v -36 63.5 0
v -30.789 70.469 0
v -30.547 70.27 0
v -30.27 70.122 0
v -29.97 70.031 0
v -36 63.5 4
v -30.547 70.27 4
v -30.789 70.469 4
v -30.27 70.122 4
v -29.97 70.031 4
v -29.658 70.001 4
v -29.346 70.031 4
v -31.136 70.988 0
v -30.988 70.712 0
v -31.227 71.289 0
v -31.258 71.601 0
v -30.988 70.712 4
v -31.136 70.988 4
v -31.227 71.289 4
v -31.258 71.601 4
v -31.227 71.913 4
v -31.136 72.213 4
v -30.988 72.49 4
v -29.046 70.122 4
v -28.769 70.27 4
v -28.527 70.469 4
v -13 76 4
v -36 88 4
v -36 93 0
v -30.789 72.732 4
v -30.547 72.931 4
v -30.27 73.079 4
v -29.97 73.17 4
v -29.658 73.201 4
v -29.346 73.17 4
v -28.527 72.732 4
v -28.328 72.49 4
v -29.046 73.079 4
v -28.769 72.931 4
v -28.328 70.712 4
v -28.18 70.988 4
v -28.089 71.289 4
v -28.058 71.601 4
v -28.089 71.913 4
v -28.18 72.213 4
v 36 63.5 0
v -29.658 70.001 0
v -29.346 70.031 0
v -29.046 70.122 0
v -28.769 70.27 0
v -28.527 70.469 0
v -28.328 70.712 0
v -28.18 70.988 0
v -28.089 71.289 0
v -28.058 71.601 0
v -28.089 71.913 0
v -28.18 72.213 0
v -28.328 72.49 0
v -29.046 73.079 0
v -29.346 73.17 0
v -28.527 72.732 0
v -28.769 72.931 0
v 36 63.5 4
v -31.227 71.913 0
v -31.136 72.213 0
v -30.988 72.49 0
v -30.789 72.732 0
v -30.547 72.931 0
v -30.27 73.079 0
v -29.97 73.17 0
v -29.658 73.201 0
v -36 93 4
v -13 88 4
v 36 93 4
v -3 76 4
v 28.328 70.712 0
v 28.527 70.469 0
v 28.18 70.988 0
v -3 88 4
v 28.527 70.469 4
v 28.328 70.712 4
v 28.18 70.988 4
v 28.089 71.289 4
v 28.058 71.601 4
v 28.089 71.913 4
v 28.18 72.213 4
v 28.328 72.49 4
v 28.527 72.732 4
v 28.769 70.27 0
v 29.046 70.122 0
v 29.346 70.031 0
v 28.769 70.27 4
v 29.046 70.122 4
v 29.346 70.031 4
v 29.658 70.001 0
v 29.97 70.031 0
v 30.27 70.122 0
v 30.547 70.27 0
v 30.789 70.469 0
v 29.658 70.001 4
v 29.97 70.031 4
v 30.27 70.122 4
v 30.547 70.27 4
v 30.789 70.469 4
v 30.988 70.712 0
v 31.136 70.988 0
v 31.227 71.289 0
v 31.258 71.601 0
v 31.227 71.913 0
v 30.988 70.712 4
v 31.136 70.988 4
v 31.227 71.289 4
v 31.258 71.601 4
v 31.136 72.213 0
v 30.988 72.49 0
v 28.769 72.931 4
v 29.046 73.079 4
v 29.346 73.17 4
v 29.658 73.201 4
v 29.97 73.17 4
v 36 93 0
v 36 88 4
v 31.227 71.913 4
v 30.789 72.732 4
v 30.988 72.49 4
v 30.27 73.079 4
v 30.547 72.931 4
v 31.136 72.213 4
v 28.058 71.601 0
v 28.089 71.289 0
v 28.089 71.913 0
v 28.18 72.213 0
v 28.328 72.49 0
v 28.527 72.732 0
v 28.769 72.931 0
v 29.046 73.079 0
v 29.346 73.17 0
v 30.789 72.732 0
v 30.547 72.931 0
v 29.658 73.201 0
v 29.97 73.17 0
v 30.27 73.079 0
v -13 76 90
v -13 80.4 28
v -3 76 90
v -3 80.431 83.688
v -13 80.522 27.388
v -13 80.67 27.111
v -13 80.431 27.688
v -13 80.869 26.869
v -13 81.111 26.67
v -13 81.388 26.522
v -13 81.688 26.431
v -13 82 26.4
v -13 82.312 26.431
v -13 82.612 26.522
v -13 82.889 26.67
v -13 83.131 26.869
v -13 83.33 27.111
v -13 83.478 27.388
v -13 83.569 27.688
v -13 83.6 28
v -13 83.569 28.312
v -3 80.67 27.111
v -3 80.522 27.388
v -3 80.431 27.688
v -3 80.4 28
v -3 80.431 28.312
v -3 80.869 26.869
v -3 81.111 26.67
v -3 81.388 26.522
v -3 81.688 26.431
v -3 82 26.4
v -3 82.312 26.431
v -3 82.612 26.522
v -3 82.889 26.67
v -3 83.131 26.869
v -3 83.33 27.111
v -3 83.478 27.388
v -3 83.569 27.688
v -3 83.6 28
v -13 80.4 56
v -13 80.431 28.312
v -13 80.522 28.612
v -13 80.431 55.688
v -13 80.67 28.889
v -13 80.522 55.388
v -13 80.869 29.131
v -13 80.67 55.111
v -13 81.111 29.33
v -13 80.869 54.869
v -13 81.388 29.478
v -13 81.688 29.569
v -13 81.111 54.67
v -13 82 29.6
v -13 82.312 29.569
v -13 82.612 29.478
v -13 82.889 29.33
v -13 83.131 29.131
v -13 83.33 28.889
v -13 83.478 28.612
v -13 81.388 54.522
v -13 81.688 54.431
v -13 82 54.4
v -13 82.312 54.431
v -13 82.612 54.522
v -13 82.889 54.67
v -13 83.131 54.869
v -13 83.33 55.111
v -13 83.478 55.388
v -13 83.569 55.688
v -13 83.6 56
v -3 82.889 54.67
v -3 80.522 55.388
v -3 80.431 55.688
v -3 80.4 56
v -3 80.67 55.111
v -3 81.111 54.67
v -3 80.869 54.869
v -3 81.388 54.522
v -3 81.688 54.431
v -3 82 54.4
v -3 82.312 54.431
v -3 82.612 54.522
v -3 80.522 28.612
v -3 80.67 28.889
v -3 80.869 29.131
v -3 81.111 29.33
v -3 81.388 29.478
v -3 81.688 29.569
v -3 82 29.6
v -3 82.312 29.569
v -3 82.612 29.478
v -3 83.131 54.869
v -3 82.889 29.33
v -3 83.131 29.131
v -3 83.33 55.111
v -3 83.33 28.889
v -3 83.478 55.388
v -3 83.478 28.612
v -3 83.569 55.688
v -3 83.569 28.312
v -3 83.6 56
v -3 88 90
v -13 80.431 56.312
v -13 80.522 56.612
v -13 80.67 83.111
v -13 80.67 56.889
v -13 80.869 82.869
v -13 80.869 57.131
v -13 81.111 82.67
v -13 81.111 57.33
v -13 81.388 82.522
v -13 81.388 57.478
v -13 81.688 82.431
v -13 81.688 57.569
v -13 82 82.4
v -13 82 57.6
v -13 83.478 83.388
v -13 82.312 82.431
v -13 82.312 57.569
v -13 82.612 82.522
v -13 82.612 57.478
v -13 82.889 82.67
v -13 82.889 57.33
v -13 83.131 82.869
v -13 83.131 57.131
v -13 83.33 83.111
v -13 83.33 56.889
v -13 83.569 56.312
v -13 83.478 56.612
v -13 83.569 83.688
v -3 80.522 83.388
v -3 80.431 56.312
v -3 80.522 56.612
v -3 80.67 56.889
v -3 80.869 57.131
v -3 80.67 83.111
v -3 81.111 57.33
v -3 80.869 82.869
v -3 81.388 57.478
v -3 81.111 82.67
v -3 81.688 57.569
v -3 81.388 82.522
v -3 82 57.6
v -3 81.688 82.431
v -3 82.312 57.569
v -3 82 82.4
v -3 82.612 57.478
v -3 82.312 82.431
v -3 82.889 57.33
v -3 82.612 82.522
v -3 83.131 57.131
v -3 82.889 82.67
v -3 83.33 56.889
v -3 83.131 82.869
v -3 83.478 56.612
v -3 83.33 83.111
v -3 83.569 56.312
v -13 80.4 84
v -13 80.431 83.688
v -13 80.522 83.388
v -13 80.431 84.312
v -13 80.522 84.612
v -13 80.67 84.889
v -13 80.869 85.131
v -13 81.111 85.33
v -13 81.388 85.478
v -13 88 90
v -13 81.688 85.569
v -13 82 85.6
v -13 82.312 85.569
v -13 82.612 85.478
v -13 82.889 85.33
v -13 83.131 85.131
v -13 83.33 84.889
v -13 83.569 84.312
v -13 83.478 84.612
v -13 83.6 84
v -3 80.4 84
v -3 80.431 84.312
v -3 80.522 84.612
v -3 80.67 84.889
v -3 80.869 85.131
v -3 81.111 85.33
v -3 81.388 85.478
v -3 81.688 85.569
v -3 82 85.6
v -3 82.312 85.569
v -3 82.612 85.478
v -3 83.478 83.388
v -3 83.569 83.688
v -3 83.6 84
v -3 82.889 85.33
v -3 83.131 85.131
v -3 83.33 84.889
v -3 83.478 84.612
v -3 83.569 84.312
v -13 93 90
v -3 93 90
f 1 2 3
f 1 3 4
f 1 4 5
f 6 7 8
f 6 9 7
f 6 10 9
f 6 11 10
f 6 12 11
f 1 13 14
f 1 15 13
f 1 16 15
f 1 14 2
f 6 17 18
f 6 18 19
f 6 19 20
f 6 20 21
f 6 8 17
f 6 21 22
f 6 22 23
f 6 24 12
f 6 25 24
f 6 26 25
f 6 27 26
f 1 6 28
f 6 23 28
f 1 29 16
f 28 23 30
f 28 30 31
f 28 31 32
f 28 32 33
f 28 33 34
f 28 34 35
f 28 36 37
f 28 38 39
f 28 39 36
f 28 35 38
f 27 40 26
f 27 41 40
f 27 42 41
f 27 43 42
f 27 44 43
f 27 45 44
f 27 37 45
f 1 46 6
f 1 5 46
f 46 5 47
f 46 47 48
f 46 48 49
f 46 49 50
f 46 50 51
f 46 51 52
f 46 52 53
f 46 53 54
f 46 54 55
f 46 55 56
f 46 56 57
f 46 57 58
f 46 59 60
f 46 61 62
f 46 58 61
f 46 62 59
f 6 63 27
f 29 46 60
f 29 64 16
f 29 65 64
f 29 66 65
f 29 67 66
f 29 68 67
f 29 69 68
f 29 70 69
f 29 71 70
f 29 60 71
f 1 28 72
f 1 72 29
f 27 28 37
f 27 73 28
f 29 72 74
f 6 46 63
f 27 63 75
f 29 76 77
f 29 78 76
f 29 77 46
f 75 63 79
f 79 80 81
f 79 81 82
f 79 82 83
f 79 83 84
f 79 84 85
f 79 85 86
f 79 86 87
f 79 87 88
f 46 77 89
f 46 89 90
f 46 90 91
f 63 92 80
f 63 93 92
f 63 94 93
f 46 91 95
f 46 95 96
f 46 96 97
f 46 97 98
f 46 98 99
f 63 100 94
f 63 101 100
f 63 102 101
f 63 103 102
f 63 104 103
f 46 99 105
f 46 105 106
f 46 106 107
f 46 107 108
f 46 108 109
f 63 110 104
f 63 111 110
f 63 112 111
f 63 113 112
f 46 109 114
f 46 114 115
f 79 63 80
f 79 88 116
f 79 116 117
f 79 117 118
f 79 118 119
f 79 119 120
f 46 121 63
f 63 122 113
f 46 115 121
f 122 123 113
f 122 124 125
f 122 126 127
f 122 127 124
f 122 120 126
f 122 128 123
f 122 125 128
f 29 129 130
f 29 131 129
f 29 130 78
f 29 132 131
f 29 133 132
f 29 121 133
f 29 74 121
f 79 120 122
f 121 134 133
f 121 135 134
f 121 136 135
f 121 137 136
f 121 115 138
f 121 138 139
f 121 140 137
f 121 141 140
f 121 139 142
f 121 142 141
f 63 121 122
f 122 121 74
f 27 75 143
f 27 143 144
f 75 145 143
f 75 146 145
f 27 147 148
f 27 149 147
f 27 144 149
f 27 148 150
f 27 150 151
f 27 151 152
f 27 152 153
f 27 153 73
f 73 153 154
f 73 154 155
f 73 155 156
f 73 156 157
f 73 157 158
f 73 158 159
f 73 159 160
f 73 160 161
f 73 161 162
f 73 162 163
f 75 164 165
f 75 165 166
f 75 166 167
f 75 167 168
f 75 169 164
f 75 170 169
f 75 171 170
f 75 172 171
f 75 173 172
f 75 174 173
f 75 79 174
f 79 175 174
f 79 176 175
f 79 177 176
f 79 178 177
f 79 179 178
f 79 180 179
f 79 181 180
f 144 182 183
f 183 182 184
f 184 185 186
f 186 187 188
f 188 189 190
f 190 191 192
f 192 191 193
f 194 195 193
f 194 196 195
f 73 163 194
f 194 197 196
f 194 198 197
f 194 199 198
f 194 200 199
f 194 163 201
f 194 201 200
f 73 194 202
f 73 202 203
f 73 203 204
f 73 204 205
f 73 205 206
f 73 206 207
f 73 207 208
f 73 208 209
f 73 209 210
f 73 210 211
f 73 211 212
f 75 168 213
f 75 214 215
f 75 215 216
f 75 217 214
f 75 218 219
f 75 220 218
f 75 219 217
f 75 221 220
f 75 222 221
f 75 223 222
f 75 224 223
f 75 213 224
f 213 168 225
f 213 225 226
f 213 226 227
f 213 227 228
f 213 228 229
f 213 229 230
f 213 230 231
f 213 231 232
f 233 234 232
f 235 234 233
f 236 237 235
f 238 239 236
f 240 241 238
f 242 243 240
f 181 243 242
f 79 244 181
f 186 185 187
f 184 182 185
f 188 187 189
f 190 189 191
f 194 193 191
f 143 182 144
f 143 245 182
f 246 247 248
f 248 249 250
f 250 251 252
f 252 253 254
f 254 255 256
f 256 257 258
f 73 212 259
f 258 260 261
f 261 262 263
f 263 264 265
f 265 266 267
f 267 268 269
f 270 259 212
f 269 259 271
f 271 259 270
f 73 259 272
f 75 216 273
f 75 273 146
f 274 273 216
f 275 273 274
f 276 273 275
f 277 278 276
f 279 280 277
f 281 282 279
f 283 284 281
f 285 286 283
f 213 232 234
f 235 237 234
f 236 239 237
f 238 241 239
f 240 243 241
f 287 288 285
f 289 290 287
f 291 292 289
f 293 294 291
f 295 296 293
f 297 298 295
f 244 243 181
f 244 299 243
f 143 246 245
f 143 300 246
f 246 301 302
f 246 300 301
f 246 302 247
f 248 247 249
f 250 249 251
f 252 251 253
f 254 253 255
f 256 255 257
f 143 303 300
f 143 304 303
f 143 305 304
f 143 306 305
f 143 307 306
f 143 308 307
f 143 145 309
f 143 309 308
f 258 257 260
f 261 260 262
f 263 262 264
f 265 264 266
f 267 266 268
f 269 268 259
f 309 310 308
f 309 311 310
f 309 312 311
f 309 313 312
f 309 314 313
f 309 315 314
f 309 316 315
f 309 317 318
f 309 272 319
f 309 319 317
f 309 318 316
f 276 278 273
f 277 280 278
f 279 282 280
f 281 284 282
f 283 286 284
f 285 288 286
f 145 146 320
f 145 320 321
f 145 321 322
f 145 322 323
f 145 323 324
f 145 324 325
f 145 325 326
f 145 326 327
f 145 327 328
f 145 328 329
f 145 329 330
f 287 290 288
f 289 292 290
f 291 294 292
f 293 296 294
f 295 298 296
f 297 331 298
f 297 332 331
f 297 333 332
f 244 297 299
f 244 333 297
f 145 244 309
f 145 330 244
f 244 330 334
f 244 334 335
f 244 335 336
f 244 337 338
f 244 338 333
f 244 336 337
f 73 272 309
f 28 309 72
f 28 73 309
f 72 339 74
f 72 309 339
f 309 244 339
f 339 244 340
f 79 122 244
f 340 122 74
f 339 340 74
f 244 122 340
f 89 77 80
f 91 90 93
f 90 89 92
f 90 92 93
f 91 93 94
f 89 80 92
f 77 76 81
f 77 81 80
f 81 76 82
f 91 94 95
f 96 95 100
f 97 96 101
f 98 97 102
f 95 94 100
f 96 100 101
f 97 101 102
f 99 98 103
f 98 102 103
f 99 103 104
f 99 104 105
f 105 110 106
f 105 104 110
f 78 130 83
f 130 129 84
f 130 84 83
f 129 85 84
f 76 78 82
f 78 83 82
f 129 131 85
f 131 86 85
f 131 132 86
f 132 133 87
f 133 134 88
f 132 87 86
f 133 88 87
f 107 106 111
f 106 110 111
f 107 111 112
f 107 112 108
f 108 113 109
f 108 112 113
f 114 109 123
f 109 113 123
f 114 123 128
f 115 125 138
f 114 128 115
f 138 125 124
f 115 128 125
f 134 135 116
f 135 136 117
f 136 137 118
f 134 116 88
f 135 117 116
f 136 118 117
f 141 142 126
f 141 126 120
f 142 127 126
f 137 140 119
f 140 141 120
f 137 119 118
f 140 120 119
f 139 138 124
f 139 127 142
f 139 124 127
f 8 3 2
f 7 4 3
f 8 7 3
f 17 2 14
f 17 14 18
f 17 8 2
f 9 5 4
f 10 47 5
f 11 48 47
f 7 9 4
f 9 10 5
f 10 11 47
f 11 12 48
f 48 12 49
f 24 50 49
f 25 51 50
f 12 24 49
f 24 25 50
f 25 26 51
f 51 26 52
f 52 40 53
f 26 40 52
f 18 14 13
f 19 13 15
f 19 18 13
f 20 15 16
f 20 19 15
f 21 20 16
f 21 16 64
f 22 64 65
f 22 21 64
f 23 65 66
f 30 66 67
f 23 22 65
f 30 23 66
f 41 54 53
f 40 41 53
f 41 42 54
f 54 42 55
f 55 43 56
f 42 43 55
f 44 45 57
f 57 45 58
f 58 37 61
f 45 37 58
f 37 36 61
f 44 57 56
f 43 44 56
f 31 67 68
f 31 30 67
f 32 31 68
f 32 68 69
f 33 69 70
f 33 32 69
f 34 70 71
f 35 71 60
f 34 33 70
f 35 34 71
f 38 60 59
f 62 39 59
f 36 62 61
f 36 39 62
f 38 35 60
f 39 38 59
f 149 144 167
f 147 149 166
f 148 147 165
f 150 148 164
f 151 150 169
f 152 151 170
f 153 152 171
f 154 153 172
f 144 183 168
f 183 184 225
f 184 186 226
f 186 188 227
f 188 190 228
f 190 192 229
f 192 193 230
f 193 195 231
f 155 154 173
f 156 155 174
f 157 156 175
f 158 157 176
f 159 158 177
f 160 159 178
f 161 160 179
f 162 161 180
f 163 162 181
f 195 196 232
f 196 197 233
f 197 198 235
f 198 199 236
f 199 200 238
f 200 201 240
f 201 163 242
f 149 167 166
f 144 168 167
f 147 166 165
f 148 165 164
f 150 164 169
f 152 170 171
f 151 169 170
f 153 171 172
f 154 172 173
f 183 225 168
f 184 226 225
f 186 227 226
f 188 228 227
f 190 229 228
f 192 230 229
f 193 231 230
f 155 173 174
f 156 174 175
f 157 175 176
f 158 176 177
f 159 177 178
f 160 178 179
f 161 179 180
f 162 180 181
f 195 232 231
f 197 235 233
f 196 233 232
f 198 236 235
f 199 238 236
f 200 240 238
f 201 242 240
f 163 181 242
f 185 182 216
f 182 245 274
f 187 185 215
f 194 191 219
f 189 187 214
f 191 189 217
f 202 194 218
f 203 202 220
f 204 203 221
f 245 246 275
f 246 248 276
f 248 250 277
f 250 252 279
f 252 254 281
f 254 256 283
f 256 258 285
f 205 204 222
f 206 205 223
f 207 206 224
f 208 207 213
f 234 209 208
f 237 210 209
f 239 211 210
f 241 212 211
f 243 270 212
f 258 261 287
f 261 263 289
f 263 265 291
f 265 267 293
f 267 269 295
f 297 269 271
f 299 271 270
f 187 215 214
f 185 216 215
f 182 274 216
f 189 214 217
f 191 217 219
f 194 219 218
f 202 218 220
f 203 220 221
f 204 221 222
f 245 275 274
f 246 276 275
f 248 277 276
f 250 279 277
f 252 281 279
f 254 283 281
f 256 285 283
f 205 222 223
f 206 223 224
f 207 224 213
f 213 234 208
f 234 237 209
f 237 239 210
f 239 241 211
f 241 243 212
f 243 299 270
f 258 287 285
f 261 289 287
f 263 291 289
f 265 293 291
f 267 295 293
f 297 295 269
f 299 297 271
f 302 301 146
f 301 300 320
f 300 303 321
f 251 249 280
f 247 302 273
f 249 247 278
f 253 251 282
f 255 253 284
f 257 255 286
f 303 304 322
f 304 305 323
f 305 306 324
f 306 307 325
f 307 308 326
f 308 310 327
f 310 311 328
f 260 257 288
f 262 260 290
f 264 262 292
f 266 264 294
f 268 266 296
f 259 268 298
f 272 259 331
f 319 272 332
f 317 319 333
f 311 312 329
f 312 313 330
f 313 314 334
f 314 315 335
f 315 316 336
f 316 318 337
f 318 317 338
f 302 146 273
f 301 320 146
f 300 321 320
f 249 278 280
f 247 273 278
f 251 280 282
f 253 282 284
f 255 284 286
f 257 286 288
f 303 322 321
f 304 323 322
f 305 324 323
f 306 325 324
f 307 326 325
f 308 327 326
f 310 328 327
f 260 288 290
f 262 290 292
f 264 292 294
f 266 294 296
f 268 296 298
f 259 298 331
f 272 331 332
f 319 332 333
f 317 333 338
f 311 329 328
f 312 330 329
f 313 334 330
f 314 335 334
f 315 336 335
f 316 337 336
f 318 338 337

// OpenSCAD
// gantry_v3 — v3 双面屏支架: 门形底座 (与 build_gantry.py 同参, 2026-07-10)
// 局部系 = 盘坐标系, Z0 = 盘顶面。
// **同一件打印 2 次**, 装配对角放: 件1 脚在 +Y (塔在 -X 侧),
// 件2 = 件1 绕 Z 转 180° (脚 -Y, 塔 +X 侧)。180° 旋转对称 → 动平衡好;
// 盘 R77.5 环孔为 45° 阵列, 转 180° 后脚孔仍落在既有孔上。
// 连接 = 贯通螺丝: M3×18/20 穿 板(6)+塔(10)=16, 塔背垫片+螺母 (无嵌件无沉头)。
// 打印: 侧躺, 外侧面 (Y=93 平面) 朝下贴床, 零支撑。

PLATE_HT = 3;                     // 板半厚 (screen_plate_v3 板 X -3..+3)
FIN_X0 = -PLATE_HT;               // -3 塔柱前面 (= 板面)
M3 = 3.2;
FOOT_T = 4;  FOOT_HX = 36;  FOOT_Y0 = 63.5;  FOOT_Y1 = 93;   // 外缘随筋墙外移
DISC_R = 85;  RIM_R = 77.5;
TWR_Y0 = 76;  TWR_Y1 = 88;  TWR_TOP = 90;   // 塔宽 12, 中心 82 (屏边 75 留 1)
TWR_D = 10;  TWR_XB = FIN_X0 - TWR_D;        // -13 直背 (平面, 坐螺母)
WALL_T = 5;                                  // 外侧筋墙 (外面与脚外缘共面 = 打印底面)
WALL_PTS = [[-36, 4], [36, 4], [-3, 90], [-13, 90]];   // 满三角 (CCW)
JOINT_Y = 82;  JOINT_Z = [28, 56, 84];       // = 塔柱中心

module gantry_v3() {
    difference() {
        union() {
            translate([-FOOT_HX, FOOT_Y0, 0])            // 脚 (矩形, 外缘平直)
                cube([2*FOOT_HX, FOOT_Y1 - FOOT_Y0, FOOT_T]);
            // 塔柱 (直背方柱, 前面 X=-3 贴板面)
            translate([0, TWR_Y1, 0]) rotate([90, 0, 0])
                linear_extrude(TWR_Y1 - TWR_Y0)
                    polygon([[TWR_XB, FOOT_T], [FIN_X0, FOOT_T],
                             [FIN_X0, TWR_TOP], [TWR_XB, TWR_TOP]]);
            // 外侧筋墙 (满三角, 塔顶直边拉到脚两端)
            translate([0, FOOT_Y1, 0]) rotate([90, 0, 0])
                linear_extrude(WALL_T) polygon(WALL_PTS);
        }
        for (a = [67.5, 112.5])   // 2 脚孔 (借盘 R77.5 环孔)
            translate([RIM_R*cos(a), RIM_R*sin(a), -1])
                cylinder(h = FOOT_T + 2, d = M3, $fn = 32);
        for (z = JOINT_Z)         // 3 贯通连接孔
            translate([TWR_XB - 1, JOINT_Y, z]) rotate([0, 90, 0])
                cylinder(h = TWR_D + 2, d = M3, $fn = 32);
    }
}

gantry_v3();                       // 件1 (脚 +Y)
// 件2 = 同一件绕 Z 转 180° (装配示意, 打印时注释掉):
// rotate([0, 0, 180]) gantry_v3();
